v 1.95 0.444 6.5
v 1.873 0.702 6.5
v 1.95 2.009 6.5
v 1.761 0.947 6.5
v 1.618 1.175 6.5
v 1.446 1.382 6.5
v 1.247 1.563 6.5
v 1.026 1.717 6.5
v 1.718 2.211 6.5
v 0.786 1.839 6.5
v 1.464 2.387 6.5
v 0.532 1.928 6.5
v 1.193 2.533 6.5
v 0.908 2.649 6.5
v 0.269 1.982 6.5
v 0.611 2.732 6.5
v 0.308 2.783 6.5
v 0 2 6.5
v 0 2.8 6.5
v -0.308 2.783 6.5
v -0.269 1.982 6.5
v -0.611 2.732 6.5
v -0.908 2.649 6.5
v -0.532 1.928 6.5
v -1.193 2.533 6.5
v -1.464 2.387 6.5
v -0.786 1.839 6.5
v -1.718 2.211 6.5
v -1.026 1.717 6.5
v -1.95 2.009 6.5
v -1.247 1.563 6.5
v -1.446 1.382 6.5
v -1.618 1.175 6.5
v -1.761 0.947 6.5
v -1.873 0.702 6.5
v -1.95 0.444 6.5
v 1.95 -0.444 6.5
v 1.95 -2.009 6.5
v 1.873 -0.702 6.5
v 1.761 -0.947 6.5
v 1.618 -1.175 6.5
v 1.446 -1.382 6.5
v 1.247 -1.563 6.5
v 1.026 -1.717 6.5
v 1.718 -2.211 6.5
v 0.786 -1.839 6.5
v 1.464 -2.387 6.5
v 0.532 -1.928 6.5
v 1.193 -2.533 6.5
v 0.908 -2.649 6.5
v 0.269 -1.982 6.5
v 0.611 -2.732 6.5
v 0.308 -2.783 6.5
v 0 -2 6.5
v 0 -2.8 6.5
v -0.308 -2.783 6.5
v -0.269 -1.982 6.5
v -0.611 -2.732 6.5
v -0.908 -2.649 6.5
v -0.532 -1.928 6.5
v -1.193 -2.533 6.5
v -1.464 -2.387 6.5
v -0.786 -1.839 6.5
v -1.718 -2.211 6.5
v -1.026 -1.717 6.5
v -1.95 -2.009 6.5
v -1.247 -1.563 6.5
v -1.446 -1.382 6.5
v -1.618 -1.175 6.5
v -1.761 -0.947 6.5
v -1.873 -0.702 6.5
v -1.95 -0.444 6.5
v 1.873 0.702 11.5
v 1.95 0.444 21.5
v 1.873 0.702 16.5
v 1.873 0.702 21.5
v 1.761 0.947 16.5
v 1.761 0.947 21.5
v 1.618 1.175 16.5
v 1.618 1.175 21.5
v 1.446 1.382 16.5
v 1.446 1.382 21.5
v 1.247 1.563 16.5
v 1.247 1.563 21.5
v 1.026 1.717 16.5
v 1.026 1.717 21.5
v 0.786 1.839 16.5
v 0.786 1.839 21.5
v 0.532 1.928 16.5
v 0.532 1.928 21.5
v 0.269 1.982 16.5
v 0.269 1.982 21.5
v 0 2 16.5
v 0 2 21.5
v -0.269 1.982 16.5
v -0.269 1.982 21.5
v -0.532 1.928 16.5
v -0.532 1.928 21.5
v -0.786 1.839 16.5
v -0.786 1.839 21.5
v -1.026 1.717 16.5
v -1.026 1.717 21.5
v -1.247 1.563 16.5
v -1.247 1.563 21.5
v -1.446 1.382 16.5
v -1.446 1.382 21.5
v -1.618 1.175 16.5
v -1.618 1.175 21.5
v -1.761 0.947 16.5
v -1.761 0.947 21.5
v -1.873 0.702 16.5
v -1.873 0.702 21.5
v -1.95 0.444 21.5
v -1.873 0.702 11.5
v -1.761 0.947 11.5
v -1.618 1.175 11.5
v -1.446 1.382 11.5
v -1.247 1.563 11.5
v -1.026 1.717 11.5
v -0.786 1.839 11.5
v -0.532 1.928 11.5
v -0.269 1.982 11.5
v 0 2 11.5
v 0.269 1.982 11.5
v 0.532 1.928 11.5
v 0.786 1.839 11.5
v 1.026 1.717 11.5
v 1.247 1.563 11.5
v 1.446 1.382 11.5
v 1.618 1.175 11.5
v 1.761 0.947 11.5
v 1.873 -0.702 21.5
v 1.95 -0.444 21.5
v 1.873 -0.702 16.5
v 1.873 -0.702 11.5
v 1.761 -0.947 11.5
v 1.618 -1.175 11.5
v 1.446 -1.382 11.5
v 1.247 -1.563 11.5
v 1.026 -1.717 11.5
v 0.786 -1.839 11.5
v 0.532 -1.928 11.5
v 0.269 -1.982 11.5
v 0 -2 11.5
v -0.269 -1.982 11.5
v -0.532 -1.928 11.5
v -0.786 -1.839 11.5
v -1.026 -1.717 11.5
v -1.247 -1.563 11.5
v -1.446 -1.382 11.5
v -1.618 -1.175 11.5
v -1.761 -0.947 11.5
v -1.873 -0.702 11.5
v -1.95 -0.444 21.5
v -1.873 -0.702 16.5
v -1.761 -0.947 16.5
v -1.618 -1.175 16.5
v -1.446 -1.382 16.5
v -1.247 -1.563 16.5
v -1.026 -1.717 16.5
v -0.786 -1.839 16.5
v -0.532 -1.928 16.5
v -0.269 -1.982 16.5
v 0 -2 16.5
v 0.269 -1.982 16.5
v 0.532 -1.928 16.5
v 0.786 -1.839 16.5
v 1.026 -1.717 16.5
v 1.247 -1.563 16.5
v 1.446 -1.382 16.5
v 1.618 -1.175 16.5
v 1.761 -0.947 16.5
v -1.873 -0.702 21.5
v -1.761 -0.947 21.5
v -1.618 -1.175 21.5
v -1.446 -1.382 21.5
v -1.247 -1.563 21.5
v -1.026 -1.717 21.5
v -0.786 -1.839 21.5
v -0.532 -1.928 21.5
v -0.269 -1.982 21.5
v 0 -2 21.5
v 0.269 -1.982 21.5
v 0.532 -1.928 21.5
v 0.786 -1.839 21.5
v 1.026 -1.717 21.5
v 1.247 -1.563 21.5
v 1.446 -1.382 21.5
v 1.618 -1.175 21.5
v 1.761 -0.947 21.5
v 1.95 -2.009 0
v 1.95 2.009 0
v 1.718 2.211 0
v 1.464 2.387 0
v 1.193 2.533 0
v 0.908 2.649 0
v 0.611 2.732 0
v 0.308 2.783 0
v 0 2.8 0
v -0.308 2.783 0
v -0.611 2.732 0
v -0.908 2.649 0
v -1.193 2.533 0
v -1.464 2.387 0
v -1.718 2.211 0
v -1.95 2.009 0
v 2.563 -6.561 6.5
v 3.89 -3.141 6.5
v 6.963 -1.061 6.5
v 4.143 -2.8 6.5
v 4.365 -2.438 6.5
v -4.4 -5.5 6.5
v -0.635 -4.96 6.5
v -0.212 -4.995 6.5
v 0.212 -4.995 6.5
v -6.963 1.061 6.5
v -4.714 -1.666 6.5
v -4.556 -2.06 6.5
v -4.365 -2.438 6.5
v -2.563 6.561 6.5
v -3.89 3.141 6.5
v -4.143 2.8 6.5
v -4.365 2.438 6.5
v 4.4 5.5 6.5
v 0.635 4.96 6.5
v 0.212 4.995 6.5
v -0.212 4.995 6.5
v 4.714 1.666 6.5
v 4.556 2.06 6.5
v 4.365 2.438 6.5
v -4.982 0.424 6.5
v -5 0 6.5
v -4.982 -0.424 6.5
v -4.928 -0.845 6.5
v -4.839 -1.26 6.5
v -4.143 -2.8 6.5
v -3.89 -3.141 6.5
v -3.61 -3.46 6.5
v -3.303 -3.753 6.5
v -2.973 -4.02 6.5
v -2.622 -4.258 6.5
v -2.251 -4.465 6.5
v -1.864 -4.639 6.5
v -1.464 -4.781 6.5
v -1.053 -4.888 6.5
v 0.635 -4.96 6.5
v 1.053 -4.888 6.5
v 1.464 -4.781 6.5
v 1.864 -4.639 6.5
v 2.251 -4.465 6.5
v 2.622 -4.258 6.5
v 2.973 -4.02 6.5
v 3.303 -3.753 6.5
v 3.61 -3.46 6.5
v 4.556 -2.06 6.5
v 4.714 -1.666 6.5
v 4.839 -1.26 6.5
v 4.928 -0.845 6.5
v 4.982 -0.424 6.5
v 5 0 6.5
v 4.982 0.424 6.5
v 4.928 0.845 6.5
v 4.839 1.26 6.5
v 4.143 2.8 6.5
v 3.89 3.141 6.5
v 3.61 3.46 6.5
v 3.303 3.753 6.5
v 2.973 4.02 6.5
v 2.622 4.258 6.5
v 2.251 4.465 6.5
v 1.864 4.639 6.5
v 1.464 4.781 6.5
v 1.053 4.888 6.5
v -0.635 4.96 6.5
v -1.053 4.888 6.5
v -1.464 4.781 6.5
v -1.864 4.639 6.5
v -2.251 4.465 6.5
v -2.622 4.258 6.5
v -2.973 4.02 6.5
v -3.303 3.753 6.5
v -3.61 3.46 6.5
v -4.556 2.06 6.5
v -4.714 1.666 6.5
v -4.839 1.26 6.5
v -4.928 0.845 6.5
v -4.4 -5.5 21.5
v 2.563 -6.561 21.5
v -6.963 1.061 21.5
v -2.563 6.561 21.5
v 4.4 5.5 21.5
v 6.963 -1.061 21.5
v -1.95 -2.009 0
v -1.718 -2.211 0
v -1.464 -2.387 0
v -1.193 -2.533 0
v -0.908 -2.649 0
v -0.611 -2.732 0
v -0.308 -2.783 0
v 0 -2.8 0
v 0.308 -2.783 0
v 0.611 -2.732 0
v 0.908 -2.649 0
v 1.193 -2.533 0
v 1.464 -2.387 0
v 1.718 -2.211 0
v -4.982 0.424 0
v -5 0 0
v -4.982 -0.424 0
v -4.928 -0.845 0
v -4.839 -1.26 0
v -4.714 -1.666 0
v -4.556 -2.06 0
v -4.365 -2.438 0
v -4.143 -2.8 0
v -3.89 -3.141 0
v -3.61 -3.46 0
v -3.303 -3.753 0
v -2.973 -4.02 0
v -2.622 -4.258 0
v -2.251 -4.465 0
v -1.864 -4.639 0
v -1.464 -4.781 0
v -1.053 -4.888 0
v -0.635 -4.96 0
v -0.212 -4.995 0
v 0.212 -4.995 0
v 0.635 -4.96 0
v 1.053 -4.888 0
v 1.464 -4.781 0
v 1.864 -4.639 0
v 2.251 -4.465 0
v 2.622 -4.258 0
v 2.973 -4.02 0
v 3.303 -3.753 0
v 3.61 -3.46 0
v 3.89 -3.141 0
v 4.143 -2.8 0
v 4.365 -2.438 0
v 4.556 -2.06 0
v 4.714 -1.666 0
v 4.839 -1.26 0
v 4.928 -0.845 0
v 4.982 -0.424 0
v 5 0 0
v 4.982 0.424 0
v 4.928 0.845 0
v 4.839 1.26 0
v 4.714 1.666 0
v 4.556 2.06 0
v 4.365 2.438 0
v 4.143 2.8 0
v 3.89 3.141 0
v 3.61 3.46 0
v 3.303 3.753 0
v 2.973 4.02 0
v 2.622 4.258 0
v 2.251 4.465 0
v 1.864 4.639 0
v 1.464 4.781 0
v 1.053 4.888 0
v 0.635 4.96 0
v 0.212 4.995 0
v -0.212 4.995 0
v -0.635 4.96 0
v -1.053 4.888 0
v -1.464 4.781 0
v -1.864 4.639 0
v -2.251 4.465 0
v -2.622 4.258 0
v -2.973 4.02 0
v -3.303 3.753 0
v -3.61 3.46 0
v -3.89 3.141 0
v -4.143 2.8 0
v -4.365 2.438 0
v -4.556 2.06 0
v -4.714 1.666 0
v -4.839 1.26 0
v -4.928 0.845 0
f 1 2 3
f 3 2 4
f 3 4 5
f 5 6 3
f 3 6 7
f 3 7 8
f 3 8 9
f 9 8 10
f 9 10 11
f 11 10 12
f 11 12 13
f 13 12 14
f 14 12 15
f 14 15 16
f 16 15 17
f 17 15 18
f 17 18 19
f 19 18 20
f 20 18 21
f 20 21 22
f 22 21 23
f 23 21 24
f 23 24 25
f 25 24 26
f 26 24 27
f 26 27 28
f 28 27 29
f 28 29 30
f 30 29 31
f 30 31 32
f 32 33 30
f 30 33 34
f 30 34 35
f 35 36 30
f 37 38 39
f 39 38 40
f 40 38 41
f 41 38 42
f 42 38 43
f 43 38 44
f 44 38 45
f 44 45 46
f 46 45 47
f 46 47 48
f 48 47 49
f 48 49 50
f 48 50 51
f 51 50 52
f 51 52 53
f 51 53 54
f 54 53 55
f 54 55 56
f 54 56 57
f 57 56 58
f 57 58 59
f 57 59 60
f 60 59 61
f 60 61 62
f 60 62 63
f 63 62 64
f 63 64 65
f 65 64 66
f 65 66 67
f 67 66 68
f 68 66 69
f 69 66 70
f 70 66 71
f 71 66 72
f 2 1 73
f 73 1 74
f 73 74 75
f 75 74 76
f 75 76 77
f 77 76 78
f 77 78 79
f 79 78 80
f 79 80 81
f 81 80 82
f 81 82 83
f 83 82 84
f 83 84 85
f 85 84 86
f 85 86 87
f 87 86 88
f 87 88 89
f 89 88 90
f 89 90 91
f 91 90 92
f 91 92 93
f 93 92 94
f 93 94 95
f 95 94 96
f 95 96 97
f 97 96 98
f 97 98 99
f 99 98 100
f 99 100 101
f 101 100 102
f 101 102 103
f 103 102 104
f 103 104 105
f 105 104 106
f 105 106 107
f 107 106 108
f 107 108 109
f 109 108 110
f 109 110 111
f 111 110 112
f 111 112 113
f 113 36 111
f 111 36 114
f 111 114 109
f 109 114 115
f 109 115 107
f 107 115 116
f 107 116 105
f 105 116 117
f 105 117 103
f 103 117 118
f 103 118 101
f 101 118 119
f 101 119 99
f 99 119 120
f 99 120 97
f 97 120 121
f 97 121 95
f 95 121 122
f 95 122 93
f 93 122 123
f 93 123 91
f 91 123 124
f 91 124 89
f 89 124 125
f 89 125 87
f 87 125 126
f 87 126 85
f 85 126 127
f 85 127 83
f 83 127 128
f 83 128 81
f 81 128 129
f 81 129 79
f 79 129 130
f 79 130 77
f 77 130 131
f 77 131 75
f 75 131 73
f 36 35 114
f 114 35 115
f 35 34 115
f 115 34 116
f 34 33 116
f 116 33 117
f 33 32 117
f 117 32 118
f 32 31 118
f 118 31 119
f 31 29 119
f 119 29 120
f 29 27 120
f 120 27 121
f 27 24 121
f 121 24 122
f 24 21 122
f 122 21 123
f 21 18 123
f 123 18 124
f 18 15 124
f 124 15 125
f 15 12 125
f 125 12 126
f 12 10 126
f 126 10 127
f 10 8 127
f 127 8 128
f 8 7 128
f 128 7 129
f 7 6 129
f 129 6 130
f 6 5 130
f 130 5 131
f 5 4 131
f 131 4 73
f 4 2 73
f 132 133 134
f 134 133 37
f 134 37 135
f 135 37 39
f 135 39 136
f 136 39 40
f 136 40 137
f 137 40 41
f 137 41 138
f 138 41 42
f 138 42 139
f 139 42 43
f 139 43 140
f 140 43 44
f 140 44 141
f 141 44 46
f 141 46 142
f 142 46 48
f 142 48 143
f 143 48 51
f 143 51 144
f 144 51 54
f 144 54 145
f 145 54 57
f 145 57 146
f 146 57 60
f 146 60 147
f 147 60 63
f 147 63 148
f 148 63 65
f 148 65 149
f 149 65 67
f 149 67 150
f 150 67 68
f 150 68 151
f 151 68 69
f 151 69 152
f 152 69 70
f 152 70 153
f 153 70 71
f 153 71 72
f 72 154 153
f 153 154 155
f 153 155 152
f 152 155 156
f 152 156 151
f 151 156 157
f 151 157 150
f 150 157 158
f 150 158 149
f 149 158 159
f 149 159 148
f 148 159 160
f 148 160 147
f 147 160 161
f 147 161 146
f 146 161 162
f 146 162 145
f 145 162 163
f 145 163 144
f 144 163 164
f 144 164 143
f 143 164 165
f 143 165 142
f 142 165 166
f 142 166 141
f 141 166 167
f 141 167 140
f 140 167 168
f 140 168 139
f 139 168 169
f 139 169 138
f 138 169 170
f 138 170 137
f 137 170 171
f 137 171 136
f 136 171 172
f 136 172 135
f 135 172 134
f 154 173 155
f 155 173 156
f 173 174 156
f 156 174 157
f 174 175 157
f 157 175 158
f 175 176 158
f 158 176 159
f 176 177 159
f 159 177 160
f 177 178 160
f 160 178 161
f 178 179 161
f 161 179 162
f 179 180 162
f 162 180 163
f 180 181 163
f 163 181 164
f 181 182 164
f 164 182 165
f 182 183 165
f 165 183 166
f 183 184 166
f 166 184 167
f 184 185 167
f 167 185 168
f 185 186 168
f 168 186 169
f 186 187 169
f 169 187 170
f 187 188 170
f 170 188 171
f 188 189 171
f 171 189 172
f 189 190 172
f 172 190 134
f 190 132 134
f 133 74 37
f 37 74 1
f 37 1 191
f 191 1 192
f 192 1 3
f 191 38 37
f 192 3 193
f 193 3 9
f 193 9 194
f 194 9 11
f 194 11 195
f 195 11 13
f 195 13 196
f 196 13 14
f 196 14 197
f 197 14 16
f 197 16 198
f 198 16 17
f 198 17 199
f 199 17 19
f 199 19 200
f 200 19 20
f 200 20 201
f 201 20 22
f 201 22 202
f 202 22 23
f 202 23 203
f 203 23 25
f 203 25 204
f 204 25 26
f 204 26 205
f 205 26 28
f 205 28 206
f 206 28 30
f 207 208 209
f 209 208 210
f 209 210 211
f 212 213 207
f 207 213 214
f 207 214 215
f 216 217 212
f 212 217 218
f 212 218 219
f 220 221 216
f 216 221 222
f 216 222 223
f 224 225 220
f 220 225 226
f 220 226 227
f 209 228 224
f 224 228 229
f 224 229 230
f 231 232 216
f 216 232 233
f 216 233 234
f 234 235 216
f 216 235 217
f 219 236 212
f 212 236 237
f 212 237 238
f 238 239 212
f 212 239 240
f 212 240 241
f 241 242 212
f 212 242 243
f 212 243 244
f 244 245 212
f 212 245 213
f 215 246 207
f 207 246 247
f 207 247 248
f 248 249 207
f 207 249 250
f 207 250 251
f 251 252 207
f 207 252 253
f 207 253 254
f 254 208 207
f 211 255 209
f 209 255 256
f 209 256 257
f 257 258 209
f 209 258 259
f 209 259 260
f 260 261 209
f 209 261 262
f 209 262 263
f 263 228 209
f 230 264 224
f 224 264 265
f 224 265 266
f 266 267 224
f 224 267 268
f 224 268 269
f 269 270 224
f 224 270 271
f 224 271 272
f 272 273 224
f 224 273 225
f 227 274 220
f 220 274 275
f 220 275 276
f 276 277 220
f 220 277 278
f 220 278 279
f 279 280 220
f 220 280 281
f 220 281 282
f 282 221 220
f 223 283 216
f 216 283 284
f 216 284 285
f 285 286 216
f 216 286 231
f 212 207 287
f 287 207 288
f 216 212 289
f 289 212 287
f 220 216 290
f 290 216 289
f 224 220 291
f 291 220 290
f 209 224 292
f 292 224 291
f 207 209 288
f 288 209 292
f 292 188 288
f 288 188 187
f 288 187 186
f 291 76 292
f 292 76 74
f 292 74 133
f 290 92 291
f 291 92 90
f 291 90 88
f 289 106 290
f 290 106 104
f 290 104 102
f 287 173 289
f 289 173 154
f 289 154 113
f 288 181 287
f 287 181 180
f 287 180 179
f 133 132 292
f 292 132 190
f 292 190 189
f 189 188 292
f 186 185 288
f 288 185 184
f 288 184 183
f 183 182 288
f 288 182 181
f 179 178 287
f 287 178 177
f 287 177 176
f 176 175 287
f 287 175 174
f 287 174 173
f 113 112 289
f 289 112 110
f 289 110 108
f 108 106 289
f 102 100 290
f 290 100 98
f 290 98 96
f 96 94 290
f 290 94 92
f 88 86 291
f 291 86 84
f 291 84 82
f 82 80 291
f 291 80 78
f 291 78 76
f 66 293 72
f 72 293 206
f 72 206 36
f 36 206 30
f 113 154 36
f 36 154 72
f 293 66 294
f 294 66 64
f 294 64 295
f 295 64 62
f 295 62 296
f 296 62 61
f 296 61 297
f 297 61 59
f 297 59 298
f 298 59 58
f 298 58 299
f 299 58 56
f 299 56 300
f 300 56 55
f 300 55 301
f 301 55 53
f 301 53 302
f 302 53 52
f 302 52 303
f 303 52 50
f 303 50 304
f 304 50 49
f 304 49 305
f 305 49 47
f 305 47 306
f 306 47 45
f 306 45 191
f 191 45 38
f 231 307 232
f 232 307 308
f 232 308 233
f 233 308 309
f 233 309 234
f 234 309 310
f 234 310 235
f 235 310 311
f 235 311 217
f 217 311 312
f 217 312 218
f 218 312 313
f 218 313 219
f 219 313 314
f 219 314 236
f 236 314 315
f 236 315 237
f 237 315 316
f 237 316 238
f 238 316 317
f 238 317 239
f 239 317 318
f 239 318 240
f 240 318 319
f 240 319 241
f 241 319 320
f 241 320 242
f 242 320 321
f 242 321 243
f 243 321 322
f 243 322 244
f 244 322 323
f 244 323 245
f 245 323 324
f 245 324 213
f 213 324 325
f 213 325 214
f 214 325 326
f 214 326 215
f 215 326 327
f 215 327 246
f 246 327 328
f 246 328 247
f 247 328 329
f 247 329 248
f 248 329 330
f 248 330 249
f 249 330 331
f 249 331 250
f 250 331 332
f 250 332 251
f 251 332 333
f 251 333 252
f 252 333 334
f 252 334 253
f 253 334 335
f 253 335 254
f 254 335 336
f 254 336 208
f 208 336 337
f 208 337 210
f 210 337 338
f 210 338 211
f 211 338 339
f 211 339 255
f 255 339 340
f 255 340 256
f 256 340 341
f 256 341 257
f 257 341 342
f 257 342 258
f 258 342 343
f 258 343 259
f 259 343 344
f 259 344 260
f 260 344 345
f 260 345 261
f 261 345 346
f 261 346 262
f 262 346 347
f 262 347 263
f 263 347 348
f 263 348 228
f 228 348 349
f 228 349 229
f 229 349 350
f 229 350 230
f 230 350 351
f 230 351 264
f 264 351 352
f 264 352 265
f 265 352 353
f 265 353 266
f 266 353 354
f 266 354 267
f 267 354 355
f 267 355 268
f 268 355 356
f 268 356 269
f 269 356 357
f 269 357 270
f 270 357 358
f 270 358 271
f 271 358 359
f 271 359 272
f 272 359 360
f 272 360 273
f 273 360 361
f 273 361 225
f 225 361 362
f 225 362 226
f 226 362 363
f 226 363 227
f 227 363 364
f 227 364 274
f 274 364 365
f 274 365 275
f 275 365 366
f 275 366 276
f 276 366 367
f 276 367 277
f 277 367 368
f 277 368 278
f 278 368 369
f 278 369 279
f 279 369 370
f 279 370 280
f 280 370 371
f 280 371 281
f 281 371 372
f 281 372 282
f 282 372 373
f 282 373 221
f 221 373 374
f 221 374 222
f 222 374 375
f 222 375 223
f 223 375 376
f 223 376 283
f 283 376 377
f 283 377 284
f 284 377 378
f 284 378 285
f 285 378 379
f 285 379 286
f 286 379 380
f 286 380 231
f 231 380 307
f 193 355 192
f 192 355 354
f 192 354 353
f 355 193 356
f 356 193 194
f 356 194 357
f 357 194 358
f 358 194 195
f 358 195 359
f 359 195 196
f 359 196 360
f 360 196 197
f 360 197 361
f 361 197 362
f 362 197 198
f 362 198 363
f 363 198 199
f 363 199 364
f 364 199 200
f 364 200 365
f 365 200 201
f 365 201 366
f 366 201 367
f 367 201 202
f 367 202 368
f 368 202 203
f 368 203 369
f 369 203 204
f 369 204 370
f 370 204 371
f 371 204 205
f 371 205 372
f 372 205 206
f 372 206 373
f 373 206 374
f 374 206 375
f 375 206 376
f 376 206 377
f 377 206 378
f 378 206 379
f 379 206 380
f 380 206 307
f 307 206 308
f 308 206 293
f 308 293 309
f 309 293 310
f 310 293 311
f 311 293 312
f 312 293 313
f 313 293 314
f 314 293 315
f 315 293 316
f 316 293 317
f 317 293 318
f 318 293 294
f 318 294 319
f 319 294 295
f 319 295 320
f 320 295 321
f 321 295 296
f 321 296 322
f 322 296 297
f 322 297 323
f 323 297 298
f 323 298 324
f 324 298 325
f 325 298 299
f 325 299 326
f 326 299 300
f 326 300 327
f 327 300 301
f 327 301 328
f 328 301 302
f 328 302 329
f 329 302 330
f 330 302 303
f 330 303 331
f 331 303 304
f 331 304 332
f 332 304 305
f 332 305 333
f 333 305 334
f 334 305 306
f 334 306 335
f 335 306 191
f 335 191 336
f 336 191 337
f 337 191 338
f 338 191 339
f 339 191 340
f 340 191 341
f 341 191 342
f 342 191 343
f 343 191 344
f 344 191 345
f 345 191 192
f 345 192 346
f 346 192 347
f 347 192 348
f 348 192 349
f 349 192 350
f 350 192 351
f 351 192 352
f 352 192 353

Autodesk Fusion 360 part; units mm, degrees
sketch "Skizze1" plane through (0, 0, 0) normal (0, 0, 1) x (1, 0, 0)
  line L0 (1.95, -2.0094) -> (-1.95, 2.0094) construction
  line L1 (-1.95, 2.0094) -> (1.95, 2.0094)
  circle A0 centre (0, 0) radius 5
  line L2 (1.95, 2.0094) -> (1.95, -2.0094)
  line L3 (-1.95, -2.0094) -> (1.95, 2.0094) construction
  circle A1 centre (0, 0) radius 2.8
  line L4 (-1.95, -2.0094) -> (-1.95, 2.0094)
  line L5 (1.95, -2.0094) -> (-1.95, -2.0094)
  dimension "d1" = 5.6
  dimension "d2" = 10
  dimension "d3" = 3.9
extrude "Extrusion1" add sketch "Skizze1" along normal blind 6.5 contours A1 L4 | L2 A1 | A0
sketch "Skizze2" plane through (0, 0, 6.5) normal (0, 0, 1) x (-1, 0, 0)
  arc A0 (-1.95, -2.0094) -> (1.95, -2.0094) centre (0, 0) ccw
  line L0 (-1.95, -2.0094) -> (-1.95, 2.0094)
  arc A1 (1.95, 2.0094) -> (-1.95, 2.0094) centre (0, 0) ccw
  line L1 (1.95, 2.0094) -> (1.95, -2.0094)
  circle A2 centre (0, 0) radius 5
  line L2 (-6.9634, 1.0605) -> (-4.4001, -5.5002)
  line L3 (-4.4001, -5.5002) -> (2.5632, -6.5607)
  line L4 (2.5632, -6.5607) -> (6.9634, -1.0605)
  line L5 (6.9634, -1.0605) -> (4.4001, 5.5002)
  line L6 (4.4001, 5.5002) -> (-2.5632, 6.5607)
  line L7 (-2.5632, 6.5607) -> (-6.9634, 1.0605)
  circle A3 centre (0, 0) radius 2
  dimension "d6" = 6.1
  dimension "d9" = 4
extrude "Extrusion2" add sketch "Skizze2" along normal blind 15 contours L0 A3 | L1 A3 | A2 | L2 L3 L4 L5 L6 L7
extrude "Extrusion3" add sketch "Skizze2" along normal blind 15 contours A0 L0 L1 A3 | L0 A1 L1 A3 | A2
